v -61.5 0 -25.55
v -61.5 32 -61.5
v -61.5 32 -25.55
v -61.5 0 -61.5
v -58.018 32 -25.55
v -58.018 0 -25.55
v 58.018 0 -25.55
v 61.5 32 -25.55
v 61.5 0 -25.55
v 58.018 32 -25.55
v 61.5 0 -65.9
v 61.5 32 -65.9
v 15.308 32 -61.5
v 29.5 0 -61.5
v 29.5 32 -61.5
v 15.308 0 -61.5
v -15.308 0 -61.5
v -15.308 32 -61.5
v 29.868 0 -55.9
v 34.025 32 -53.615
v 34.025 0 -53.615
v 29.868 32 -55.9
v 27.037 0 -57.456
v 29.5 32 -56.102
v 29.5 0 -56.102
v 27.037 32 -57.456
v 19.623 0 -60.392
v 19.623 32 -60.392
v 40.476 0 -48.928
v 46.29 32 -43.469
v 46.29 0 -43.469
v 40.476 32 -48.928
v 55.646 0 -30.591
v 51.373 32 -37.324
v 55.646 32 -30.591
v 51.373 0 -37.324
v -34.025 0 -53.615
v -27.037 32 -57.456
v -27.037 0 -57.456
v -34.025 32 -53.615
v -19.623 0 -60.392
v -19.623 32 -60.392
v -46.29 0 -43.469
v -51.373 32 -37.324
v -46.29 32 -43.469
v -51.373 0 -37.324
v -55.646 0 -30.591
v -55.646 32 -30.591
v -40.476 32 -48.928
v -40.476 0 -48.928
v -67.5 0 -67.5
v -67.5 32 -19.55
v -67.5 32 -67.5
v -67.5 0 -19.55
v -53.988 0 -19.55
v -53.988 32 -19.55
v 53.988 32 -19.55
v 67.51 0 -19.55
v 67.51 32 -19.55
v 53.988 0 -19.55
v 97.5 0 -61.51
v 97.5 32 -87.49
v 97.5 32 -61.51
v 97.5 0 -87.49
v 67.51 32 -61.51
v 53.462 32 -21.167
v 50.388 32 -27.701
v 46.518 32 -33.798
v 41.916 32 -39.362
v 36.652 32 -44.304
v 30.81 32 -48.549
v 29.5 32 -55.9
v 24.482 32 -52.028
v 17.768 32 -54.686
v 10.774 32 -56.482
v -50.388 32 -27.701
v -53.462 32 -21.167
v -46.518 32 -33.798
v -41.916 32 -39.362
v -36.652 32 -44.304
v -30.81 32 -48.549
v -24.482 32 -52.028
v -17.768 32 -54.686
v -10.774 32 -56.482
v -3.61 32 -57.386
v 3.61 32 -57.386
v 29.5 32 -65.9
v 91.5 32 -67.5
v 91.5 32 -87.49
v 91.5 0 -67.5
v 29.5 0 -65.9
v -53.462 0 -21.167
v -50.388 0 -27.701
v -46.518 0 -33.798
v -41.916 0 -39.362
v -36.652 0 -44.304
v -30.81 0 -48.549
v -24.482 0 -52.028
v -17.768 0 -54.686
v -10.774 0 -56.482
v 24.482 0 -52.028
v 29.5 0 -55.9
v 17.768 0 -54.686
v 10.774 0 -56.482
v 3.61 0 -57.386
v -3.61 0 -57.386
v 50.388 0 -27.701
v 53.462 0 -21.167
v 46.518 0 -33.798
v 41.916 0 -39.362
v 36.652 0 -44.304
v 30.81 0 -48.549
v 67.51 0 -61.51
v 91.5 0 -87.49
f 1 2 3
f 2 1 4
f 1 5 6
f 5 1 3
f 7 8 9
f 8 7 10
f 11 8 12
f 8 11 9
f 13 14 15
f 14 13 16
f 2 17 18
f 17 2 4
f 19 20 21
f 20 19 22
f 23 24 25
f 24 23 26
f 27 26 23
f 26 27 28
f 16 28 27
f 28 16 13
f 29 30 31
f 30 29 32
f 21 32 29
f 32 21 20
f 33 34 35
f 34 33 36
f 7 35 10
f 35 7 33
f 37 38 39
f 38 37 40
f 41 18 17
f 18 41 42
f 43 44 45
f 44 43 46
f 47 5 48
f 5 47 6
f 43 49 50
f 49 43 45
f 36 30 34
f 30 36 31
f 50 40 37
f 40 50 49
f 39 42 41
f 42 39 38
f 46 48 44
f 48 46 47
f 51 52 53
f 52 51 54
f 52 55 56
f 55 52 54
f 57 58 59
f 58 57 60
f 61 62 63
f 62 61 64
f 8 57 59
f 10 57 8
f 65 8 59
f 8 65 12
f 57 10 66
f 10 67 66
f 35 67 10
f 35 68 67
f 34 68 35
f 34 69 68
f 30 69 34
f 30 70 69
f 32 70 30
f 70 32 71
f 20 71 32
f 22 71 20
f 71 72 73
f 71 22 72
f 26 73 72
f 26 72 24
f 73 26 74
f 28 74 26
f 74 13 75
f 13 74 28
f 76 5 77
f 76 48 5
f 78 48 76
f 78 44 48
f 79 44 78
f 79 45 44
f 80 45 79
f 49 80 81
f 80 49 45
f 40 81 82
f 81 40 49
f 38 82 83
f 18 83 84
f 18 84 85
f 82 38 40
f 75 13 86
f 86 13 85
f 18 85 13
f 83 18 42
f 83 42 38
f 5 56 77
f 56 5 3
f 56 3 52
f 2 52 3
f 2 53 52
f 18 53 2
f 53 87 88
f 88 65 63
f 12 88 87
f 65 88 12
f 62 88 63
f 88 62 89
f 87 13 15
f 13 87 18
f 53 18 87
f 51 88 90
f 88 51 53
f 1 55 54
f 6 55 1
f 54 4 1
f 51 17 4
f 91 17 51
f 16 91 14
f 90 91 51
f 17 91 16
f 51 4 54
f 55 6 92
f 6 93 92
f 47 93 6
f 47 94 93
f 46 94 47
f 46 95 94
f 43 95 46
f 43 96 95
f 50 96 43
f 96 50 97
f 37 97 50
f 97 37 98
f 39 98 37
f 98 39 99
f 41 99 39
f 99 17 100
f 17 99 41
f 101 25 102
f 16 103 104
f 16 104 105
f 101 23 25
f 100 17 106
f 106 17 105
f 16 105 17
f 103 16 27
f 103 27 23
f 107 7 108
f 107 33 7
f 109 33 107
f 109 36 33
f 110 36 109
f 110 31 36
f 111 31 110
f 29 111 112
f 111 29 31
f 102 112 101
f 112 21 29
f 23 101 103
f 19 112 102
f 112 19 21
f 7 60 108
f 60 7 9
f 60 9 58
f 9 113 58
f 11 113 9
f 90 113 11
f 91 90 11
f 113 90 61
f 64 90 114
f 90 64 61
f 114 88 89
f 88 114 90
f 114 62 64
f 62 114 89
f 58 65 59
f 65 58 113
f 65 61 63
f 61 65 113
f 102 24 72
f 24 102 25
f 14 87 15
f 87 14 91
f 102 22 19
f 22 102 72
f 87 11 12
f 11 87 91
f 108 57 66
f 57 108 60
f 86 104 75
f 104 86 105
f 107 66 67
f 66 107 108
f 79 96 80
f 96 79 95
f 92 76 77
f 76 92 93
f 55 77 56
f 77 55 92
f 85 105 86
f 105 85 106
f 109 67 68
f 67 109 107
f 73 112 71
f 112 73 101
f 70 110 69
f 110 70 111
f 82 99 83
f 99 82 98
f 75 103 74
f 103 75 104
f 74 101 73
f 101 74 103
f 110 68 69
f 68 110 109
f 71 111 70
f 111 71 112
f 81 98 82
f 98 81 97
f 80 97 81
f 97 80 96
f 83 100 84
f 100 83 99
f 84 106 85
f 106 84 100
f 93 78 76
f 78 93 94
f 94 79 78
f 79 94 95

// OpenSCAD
// Model that holds a morsø forno pipe

pipe_radius = 115 / 2;
pipe_support_height = 0.66 * pipe_radius;
left_holder_thickness = 10;
right_holder_thickness = 10;
bottom_thickness = 10;

// Stop is a small tap
stop_offset = 30;
stop_height = 20;
stop_thickness = 6;

// Cutout is where to put the magnet
cutout_width = 32;
cutout_height = 10;
cutout_bottom_offset = 1.6;
cutout_edge_offset = 6;

// Material_saver is also a cutout
material_saver_offset = 6;

depth = cutout_width; // Controlled by magnet size
pad = 0.01;

// Basically a cube, with a round cutout, and a stop support thing.

$fn = 50;

// Calculate cube parameters
// z
cube_h = bottom_thickness + pipe_support_height;
// x
cube_w = left_holder_thickness + right_holder_thickness + stop_offset + pipe_radius * 2;
// y
cube_d = depth;



module cube_and_stop() {
    // The magnet cutout
    difference() {
        // cube and stop
        difference() {
            union() {
                cube([cube_w, cube_d, cube_h]);
                translate([cube_w - stop_thickness, 0, -stop_height+pad])
                cube([stop_thickness, cube_d, stop_height]);
            }
            // Cut out from the end
            translate([cube_w-stop_offset+pad,-pad,stop_thickness-pad])
            cube([stop_offset,depth+2*pad,pipe_support_height*2]);
        }

        // Magnet cutout
        translate([cube_w-stop_offset-cutout_width-cutout_edge_offset,-pad,cutout_bottom_offset])
        cube([cutout_width, depth+2*pad, cutout_height]);
    }
}

module cut_out_cube() {
    // Cut the pipe from the cube
    difference() {
        // Translate the cube (and stop), such that the pipe center is in 0.0
        translate([-left_holder_thickness-pipe_radius,0,-bottom_thickness-pipe_radius])
        cube_and_stop();

        // rotate cylinder around 0,0
        rotate([90,0,0])
        cylinder(r = pipe_radius, h = depth * 10, center = true);
    }
}

// This is a cube cutout, that gets stuff removed.
module material_saver() {

    difference() {
        translate([-left_holder_thickness-pipe_radius,0,-bottom_thickness-pipe_radius])
        translate([material_saver_offset,-pad,material_saver_offset])
        cube([cube_w-2*material_saver_offset-stop_offset, cube_d+2*pad, cube_h-2*material_saver_offset]);
        // rotate cylinder around 0,0
        rotate([90,0,0])
        cylinder(r = pipe_radius + material_saver_offset, h = depth * 10, center = true);        
    }
}



//material_saver();
//cube_and_stop();
//cut_out_cube();

module main() {
    difference() {
        cut_out_cube();
        material_saver();
        
    }
    
    
}

main();
